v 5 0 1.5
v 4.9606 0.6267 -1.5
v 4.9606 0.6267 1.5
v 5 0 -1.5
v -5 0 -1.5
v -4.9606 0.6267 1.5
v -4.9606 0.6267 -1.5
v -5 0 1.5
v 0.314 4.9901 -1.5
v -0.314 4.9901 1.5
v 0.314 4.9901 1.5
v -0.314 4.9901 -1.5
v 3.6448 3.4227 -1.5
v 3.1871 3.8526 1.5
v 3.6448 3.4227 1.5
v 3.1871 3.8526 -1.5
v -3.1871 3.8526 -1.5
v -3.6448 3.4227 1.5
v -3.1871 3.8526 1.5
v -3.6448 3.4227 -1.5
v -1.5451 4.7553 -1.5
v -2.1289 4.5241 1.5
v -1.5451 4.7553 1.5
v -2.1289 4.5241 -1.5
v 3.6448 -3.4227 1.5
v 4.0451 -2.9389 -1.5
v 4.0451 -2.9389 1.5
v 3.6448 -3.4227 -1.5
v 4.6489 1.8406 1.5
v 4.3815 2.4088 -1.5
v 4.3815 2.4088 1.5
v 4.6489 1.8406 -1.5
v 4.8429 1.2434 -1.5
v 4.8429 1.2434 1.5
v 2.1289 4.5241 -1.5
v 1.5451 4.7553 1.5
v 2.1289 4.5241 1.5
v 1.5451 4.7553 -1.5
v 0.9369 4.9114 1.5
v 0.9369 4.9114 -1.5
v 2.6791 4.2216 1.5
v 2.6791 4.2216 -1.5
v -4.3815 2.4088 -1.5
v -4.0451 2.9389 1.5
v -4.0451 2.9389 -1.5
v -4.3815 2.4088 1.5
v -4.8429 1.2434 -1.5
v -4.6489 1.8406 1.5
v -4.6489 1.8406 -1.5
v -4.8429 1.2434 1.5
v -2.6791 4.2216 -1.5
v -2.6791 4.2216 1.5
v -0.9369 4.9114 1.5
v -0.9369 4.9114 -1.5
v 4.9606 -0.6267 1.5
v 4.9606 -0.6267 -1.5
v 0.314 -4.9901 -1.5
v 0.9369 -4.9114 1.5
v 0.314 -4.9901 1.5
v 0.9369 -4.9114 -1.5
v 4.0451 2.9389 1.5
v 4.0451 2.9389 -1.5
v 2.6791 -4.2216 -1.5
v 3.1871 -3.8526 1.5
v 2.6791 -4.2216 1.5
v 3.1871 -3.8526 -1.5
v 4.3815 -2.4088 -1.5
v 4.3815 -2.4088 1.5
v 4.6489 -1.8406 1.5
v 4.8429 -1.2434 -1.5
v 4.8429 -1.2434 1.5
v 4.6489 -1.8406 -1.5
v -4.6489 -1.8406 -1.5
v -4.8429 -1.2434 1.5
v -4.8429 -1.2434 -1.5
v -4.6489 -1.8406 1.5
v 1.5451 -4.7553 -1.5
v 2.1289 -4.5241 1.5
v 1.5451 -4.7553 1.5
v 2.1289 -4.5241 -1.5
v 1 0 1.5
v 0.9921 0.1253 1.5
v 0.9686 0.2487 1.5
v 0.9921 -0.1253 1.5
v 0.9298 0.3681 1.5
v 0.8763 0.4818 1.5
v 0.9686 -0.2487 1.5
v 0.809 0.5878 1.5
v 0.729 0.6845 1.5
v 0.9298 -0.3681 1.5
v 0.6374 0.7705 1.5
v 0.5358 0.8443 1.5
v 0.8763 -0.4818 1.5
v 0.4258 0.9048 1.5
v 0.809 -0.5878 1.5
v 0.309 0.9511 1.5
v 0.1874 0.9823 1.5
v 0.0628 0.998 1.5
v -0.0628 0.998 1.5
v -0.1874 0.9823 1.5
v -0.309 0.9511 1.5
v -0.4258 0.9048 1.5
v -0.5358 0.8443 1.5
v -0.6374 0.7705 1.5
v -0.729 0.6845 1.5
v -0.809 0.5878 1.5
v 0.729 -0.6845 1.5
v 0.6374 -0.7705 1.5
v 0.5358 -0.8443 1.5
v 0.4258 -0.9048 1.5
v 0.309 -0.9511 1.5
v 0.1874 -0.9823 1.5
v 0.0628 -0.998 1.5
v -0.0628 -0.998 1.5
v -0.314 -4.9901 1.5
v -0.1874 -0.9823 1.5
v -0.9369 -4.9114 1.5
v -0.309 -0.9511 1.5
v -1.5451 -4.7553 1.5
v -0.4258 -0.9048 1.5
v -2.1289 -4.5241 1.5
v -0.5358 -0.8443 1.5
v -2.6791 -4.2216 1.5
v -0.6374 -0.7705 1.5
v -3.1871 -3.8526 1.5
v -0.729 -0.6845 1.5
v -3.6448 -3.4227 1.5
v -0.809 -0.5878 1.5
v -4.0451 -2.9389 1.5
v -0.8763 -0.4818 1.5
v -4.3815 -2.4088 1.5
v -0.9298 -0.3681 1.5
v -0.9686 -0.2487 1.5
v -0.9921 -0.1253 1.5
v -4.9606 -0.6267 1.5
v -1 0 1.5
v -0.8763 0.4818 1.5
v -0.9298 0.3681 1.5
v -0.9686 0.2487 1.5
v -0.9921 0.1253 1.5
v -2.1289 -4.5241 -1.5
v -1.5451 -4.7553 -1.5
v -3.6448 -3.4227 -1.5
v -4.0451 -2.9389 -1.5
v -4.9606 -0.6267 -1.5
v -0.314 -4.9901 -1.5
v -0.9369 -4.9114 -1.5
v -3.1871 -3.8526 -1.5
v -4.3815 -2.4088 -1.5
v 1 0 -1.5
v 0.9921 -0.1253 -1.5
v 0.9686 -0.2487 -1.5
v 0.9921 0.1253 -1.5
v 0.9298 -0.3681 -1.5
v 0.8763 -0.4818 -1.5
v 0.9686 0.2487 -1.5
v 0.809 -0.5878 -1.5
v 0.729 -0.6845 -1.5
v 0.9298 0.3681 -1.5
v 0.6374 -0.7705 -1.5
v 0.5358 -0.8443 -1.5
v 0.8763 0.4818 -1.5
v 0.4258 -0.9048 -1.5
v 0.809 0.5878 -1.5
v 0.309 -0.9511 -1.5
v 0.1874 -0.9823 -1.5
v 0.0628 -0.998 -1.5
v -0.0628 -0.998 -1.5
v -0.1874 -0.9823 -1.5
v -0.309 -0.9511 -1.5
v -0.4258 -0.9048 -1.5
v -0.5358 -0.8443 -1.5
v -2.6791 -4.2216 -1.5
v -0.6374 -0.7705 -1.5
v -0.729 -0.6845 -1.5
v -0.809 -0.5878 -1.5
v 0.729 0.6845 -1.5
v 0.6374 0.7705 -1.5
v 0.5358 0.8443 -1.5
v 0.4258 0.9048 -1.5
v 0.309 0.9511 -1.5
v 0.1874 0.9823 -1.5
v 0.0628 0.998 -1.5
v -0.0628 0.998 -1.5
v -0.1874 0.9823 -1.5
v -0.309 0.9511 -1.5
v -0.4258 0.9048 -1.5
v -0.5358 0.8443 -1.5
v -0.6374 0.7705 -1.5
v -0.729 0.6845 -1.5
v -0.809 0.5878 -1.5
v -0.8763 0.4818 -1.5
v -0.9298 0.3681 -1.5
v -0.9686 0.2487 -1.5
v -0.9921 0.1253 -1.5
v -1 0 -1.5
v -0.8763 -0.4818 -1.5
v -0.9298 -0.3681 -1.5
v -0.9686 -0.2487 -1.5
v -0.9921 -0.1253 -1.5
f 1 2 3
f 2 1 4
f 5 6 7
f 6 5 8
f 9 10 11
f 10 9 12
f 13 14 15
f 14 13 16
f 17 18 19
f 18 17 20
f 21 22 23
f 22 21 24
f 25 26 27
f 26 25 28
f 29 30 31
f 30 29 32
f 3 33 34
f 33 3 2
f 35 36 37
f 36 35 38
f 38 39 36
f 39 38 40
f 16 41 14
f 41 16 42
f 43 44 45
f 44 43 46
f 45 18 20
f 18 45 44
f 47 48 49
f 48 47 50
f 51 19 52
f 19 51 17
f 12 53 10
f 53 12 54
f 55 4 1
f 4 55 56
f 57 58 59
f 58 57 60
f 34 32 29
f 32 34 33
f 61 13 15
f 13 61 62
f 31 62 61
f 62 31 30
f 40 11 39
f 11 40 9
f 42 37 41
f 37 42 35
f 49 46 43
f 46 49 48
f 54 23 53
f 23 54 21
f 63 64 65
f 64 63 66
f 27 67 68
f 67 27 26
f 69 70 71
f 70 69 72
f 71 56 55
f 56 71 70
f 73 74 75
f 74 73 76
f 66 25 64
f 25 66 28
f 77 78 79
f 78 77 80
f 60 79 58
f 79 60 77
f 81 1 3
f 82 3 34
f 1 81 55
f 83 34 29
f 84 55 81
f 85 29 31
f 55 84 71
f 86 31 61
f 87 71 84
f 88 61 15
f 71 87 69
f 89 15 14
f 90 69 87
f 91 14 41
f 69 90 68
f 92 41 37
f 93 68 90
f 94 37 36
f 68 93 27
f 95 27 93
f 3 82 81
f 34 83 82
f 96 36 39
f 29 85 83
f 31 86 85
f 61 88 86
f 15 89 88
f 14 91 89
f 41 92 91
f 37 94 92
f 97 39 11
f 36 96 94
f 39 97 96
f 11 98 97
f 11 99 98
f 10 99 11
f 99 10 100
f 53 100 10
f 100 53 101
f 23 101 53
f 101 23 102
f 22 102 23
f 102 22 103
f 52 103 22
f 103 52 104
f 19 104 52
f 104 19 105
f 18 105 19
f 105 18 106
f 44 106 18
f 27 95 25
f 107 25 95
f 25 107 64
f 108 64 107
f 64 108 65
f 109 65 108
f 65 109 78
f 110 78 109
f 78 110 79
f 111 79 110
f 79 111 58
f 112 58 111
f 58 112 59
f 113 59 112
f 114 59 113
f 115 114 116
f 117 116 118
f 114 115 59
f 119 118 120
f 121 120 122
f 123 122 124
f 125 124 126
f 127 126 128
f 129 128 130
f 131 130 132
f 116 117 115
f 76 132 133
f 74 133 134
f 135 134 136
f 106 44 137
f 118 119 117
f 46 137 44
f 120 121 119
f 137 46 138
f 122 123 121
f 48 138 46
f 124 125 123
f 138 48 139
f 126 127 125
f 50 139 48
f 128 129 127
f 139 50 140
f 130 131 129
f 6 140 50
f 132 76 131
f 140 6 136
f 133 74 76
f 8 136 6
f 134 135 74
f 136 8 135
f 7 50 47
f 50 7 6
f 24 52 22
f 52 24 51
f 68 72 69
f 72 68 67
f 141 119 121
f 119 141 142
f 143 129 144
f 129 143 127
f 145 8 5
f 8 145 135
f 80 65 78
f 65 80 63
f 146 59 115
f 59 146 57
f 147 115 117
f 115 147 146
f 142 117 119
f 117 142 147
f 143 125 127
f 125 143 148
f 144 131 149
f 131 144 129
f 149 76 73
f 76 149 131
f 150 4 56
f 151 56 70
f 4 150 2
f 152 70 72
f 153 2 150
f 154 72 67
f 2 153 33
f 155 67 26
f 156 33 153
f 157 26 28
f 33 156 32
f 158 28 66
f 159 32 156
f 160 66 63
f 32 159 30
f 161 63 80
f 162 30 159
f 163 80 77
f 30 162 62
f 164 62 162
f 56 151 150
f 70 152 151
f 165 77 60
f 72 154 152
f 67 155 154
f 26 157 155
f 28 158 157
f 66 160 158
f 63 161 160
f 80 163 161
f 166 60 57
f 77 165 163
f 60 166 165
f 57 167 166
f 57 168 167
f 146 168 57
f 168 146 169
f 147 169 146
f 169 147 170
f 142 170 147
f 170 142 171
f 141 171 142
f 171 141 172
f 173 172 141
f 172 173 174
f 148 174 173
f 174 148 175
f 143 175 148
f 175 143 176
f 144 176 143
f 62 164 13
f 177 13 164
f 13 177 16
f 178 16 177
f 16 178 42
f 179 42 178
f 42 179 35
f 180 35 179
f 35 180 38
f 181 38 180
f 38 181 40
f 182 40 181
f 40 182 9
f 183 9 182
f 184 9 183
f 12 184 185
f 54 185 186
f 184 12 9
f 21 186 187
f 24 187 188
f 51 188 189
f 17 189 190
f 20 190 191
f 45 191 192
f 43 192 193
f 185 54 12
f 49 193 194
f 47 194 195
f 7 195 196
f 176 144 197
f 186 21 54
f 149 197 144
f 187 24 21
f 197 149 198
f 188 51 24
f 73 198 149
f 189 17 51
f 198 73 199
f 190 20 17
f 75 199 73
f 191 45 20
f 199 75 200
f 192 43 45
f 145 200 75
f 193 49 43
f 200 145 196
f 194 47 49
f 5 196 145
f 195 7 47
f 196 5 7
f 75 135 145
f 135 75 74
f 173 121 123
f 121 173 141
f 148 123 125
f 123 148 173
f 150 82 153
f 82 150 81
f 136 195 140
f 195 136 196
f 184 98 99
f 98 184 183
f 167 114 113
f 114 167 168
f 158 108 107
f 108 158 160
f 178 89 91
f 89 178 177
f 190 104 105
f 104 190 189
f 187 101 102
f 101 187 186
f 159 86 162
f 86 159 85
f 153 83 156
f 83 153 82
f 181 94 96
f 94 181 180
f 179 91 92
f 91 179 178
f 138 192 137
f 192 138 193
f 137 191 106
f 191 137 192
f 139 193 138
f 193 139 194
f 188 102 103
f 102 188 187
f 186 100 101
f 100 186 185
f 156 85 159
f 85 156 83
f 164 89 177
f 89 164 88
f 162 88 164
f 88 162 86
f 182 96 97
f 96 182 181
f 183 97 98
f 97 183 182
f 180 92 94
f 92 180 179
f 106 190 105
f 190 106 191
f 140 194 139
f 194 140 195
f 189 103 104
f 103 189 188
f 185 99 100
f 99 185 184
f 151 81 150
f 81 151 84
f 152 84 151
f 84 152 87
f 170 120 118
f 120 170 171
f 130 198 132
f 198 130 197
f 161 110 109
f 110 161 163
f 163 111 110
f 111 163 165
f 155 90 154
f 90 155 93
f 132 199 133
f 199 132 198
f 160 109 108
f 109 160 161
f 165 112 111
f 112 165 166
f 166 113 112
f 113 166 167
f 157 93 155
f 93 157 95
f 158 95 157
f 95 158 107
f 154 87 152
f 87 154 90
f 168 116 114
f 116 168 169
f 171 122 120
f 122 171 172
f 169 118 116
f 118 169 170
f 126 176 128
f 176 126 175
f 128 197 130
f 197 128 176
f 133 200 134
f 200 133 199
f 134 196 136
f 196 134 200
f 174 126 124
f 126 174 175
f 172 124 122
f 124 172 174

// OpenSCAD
$fn = 50;


difference() {
	union() {
		translate(v = [0, 0, -1.5000000000]) {
			cylinder(h = 3, r = 5.0000000000);
		}
	}
	union() {
		translate(v = [0, 0, -100.0000000000]) {
			cylinder(h = 200, r = 1.0000000000);
		}
	}
}
